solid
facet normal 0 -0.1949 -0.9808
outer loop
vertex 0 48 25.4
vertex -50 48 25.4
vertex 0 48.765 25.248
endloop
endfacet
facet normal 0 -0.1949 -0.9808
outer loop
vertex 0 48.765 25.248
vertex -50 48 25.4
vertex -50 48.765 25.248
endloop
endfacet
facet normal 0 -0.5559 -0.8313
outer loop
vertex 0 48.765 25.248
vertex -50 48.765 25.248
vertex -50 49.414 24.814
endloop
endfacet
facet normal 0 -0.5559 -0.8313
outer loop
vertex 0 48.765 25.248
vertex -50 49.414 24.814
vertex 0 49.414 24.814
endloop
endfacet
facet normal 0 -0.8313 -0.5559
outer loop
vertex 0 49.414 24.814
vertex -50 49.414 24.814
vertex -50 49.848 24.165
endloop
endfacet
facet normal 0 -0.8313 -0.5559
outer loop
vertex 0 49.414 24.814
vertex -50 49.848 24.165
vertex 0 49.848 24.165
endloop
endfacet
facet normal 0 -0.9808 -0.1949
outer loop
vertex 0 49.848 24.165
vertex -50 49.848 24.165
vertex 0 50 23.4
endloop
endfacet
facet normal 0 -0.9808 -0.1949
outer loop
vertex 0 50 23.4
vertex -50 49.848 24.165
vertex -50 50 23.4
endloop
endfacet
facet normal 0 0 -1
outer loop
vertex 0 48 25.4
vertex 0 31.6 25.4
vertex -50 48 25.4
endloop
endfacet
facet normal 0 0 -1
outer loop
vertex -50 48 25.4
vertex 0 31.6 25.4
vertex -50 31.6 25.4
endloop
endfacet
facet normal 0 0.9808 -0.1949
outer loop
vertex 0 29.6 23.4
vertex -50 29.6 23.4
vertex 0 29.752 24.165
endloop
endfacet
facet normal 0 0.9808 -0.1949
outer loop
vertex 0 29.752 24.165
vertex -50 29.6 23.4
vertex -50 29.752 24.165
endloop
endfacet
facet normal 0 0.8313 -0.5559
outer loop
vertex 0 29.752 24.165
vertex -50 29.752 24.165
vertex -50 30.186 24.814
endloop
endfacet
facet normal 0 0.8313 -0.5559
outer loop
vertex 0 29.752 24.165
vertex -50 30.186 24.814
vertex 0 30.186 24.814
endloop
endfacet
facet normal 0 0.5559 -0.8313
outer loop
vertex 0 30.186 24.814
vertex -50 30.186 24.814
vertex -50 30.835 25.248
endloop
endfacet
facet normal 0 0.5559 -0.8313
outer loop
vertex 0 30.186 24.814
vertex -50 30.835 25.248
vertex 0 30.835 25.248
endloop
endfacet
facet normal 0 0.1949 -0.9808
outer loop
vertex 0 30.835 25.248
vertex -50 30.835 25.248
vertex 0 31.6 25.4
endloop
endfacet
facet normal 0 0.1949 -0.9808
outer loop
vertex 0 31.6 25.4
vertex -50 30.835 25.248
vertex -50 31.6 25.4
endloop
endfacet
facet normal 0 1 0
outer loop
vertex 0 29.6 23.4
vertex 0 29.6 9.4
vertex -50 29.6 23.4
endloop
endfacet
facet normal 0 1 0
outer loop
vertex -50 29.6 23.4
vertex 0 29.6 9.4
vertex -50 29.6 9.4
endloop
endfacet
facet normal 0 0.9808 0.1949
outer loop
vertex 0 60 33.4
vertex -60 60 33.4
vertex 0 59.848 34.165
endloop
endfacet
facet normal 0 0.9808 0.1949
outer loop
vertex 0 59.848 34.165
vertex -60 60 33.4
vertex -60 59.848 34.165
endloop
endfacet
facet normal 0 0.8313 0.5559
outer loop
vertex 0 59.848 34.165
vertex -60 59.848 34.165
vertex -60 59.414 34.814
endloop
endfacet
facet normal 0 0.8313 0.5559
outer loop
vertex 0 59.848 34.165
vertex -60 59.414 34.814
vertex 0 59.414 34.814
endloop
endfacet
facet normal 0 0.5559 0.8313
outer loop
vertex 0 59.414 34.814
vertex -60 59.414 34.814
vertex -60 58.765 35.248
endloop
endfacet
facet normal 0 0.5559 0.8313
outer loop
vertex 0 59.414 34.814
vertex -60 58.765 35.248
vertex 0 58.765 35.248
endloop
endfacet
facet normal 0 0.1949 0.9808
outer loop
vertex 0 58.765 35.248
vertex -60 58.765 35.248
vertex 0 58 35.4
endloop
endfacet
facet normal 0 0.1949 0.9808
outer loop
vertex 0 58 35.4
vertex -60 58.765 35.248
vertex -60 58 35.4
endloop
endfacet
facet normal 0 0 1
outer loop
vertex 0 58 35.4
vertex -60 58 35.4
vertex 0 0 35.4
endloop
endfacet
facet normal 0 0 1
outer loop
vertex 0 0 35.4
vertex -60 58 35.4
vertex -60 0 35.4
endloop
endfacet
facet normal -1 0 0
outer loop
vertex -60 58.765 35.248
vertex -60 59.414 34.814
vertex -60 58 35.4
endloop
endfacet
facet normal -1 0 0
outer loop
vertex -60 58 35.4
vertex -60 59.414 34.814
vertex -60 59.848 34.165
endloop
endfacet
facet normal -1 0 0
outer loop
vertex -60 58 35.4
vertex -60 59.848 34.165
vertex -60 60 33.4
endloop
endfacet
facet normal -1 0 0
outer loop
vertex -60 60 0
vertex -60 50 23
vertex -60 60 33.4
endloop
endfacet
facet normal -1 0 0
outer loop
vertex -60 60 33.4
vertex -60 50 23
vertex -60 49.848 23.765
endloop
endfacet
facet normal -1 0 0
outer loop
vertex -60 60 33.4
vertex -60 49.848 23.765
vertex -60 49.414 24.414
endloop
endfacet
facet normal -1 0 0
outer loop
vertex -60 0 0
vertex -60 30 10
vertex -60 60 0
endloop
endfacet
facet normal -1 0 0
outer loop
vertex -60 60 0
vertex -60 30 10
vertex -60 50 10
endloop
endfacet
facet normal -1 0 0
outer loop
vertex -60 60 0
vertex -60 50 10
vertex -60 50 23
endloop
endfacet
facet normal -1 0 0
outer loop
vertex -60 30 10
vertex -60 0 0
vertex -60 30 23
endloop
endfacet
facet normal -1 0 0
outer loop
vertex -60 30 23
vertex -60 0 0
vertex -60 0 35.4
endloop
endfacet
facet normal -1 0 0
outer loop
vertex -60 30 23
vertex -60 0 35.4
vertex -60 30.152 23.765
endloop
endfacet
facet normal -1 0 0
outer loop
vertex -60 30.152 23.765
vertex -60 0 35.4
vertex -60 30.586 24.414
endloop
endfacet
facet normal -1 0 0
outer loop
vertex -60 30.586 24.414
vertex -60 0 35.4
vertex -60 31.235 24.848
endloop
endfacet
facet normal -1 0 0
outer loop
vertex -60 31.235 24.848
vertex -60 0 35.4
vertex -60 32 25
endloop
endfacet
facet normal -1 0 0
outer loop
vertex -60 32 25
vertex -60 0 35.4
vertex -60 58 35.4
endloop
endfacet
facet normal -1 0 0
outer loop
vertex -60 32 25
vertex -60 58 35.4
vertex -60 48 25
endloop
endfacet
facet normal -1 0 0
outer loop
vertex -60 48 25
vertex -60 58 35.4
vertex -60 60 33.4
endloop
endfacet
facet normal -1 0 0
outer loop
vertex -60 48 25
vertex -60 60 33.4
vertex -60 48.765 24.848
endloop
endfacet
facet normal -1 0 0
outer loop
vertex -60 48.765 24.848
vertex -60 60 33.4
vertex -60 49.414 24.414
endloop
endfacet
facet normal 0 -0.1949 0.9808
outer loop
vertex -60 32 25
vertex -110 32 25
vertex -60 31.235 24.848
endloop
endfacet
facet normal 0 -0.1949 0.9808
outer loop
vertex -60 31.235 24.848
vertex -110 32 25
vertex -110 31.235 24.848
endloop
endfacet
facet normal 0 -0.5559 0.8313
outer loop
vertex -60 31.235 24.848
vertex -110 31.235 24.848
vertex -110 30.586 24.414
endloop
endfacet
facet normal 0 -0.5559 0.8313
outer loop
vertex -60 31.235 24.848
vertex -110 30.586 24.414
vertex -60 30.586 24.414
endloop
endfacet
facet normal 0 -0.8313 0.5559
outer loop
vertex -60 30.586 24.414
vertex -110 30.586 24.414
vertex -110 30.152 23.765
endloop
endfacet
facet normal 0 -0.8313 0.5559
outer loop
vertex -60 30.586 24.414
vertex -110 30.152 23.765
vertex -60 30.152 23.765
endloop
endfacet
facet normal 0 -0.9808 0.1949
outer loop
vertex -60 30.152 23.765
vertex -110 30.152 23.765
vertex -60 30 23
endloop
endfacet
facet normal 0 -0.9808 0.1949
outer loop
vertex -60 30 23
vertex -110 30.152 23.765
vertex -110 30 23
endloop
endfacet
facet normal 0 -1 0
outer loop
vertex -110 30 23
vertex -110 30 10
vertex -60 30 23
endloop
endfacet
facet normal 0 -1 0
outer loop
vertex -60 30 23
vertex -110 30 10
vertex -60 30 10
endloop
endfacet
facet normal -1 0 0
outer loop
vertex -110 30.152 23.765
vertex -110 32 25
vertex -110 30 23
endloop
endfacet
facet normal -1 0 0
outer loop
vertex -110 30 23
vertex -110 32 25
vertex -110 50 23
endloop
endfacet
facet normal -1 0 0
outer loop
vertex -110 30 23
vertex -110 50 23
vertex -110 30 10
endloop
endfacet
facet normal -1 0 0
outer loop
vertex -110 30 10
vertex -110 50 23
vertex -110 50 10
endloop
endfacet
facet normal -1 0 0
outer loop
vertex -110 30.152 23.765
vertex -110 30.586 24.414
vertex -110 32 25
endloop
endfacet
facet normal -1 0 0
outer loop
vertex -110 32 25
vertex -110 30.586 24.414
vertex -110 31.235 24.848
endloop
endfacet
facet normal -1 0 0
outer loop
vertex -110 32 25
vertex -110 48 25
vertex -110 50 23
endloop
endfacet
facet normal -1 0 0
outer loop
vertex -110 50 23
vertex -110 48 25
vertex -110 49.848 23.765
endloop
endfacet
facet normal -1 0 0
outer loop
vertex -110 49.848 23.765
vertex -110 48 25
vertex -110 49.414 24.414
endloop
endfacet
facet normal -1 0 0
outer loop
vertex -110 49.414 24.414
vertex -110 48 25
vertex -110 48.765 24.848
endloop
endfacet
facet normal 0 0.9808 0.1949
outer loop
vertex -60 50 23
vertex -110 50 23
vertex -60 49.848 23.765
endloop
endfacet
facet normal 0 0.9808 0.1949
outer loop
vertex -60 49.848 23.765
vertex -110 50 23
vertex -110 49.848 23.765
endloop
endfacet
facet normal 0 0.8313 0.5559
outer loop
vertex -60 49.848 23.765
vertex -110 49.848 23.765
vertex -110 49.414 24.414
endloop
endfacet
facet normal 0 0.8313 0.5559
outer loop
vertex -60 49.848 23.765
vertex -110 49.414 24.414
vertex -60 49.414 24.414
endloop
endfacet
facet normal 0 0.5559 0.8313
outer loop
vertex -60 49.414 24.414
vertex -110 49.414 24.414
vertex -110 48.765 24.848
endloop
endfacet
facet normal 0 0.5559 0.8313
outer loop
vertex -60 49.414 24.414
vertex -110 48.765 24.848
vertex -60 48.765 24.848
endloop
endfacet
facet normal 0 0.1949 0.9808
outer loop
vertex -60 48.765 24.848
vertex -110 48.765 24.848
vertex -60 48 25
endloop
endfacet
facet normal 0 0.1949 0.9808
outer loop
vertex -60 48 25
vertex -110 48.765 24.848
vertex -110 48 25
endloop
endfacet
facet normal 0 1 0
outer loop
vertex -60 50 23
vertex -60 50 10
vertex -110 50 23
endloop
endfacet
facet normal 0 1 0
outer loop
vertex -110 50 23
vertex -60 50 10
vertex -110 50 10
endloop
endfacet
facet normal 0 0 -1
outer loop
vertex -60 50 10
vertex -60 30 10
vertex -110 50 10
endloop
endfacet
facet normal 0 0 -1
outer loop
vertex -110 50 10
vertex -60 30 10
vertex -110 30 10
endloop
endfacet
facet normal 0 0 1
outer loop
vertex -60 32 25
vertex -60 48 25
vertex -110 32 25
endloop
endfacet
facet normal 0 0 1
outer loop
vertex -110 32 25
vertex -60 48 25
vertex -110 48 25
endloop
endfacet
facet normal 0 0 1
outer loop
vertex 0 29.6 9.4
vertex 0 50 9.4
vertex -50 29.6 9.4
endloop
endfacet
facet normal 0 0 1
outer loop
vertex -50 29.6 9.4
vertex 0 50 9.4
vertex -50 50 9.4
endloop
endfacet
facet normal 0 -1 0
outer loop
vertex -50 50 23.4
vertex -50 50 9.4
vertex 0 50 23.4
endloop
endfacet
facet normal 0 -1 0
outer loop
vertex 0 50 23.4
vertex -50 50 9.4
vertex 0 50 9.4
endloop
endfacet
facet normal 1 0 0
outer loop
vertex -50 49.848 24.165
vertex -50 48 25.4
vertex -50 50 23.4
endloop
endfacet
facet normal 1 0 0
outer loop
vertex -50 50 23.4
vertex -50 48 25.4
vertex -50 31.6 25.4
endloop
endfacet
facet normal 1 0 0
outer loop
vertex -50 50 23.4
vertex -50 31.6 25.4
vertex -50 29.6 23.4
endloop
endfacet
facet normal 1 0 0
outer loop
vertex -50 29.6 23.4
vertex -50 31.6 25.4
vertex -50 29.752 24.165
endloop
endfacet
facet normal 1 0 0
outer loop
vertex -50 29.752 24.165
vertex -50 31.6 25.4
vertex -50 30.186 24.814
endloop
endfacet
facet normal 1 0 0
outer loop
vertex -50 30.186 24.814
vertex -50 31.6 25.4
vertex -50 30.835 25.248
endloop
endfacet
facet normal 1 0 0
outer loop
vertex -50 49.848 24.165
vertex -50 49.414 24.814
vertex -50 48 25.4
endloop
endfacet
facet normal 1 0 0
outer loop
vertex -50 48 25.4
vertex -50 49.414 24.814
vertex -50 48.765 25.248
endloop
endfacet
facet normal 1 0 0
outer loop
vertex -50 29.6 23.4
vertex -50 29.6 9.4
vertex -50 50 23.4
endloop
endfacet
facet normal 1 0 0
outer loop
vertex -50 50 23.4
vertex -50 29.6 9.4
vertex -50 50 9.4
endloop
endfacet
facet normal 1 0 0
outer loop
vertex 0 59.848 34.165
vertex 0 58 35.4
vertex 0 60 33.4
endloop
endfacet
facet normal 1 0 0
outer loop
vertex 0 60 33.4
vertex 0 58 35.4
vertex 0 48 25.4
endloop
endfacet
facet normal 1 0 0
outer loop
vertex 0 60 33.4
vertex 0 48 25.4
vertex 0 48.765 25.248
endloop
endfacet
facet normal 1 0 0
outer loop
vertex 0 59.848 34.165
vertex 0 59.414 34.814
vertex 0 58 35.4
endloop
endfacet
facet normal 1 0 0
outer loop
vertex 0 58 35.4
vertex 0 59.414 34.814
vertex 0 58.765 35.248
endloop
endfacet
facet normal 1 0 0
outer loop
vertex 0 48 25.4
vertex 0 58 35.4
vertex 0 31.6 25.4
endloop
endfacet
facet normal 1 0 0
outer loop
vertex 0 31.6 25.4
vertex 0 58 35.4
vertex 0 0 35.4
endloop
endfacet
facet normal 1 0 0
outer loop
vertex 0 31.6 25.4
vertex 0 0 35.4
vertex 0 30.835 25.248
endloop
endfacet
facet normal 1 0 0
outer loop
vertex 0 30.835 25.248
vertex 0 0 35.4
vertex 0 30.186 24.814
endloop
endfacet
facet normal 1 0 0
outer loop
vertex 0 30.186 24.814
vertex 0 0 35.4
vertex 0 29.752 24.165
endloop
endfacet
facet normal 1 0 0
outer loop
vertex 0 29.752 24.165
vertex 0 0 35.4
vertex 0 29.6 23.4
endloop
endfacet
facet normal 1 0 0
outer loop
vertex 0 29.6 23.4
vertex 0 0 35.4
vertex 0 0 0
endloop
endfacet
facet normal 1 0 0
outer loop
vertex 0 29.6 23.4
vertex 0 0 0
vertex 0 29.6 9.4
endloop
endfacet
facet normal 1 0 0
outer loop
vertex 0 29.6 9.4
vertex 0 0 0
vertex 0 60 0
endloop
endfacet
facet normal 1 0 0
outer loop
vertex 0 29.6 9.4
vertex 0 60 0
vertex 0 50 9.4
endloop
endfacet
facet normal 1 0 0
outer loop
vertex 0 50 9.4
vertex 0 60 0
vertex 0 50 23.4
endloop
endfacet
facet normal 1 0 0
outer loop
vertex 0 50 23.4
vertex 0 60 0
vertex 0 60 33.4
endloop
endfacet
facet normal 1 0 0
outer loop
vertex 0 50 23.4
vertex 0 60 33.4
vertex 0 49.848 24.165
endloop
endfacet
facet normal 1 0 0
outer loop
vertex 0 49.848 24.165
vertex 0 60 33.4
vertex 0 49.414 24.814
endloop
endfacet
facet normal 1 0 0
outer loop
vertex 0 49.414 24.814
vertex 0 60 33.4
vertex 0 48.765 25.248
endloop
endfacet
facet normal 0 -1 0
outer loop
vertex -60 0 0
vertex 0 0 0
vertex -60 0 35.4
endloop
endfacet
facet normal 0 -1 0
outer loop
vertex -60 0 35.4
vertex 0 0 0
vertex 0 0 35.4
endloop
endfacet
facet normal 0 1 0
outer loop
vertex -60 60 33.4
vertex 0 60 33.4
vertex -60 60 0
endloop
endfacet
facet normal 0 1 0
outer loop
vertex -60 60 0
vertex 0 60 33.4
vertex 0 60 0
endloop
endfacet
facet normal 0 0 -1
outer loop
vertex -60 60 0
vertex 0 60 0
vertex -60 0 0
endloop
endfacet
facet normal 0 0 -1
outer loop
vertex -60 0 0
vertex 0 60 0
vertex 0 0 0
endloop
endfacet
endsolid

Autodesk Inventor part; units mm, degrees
ref_plane "YZ Plane" through (0, 0, 0) normal (1, 0, 0) x (0, 1, 0)
ref_plane "XZ Plane" through (0, 0, 0) normal (0, 1, 0) x (-1, 0, 0)
ref_plane "XY Plane" through (0, 0, 0) normal (0, 0, 1) x (1, 0, 0)
sketch "Sketch5" plane through (0, 0, 0) normal (0, 0, 1) x (1, 0, 0)
  line L0 (0, 0) -> (-60, 0)
  line L1 (-60, 0) -> (-60, 60)
  line L2 (-60, 60) -> (0, 60)
  line L3 (0, 60) -> (0, 0)
  dimension "d55" = 60
  dimension "d56" = 60
extrude "Extrusion4" add sketch "Sketch5" along normal blind 35.4
sketch "Sketch6" plane through (0, 0, 0) normal (1, 0, 0) x (0, 0, -1)
  line L0 (-35.4, 60) -> (-35.4, 0) projected
  line L1 (-35.4, 60) -> (-25.4, 60)
  line L2 (-25.4, 60) -> (-25.4, 50)
  line L3 (-25.4, 50) -> (-35.4, 50)
  line L4 (-35.4, 50) -> (-35.4, 60)
  line L5 (-25.4, 50) -> (-9.4, 50)
  line L6 (-9.4, 50) -> (-9.4, 29.6)
  line L7 (-9.4, 29.6) -> (-25.4, 29.6)
  line L8 (-25.4, 29.6) -> (-25.4, 50)
  point P0 (0, 0)
  dimension "d61" = 10
  dimension "d62" = 10
  dimension "d65" = 16
  dimension "d66" = 20.4
extrude "Extrusion5" cut sketch "Sketch6" against normal blind 50 contours L5 L6 L7 L8
sketch "Sketch7" plane through (-60, 0, 0) normal (-1, 0, 0) x (0, 0, 1)
  line L0 (0, 0) -> (0, 60) projected
  line L1 (0, 60) -> (10, 60)
  line L2 (10, 60) -> (10, 50)
  line L3 (10, 50) -> (0, 50)
  line L4 (0, 50) -> (0, 60)
  line L5 (10, 50) -> (25, 50)
  line L6 (25, 50) -> (25, 30)
  line L7 (25, 30) -> (10, 30)
  line L8 (10, 30) -> (10, 50)
  dimension "d68" = 10
  dimension "d69" = 10
  dimension "d70" = 15
  dimension "d71" = 20
extrude "Extrusion6" add sketch "Sketch7" along normal blind 50 contours L5 L6 L7 L8
fillet "Fillet5" radius 2 5 edges at (-85, 50, 25) (-85, 30, 25) (-30, 60, 35.4) (-25, 29.6, 25.4) (-25, 50, 25.4)
properties part number "Clasp"
